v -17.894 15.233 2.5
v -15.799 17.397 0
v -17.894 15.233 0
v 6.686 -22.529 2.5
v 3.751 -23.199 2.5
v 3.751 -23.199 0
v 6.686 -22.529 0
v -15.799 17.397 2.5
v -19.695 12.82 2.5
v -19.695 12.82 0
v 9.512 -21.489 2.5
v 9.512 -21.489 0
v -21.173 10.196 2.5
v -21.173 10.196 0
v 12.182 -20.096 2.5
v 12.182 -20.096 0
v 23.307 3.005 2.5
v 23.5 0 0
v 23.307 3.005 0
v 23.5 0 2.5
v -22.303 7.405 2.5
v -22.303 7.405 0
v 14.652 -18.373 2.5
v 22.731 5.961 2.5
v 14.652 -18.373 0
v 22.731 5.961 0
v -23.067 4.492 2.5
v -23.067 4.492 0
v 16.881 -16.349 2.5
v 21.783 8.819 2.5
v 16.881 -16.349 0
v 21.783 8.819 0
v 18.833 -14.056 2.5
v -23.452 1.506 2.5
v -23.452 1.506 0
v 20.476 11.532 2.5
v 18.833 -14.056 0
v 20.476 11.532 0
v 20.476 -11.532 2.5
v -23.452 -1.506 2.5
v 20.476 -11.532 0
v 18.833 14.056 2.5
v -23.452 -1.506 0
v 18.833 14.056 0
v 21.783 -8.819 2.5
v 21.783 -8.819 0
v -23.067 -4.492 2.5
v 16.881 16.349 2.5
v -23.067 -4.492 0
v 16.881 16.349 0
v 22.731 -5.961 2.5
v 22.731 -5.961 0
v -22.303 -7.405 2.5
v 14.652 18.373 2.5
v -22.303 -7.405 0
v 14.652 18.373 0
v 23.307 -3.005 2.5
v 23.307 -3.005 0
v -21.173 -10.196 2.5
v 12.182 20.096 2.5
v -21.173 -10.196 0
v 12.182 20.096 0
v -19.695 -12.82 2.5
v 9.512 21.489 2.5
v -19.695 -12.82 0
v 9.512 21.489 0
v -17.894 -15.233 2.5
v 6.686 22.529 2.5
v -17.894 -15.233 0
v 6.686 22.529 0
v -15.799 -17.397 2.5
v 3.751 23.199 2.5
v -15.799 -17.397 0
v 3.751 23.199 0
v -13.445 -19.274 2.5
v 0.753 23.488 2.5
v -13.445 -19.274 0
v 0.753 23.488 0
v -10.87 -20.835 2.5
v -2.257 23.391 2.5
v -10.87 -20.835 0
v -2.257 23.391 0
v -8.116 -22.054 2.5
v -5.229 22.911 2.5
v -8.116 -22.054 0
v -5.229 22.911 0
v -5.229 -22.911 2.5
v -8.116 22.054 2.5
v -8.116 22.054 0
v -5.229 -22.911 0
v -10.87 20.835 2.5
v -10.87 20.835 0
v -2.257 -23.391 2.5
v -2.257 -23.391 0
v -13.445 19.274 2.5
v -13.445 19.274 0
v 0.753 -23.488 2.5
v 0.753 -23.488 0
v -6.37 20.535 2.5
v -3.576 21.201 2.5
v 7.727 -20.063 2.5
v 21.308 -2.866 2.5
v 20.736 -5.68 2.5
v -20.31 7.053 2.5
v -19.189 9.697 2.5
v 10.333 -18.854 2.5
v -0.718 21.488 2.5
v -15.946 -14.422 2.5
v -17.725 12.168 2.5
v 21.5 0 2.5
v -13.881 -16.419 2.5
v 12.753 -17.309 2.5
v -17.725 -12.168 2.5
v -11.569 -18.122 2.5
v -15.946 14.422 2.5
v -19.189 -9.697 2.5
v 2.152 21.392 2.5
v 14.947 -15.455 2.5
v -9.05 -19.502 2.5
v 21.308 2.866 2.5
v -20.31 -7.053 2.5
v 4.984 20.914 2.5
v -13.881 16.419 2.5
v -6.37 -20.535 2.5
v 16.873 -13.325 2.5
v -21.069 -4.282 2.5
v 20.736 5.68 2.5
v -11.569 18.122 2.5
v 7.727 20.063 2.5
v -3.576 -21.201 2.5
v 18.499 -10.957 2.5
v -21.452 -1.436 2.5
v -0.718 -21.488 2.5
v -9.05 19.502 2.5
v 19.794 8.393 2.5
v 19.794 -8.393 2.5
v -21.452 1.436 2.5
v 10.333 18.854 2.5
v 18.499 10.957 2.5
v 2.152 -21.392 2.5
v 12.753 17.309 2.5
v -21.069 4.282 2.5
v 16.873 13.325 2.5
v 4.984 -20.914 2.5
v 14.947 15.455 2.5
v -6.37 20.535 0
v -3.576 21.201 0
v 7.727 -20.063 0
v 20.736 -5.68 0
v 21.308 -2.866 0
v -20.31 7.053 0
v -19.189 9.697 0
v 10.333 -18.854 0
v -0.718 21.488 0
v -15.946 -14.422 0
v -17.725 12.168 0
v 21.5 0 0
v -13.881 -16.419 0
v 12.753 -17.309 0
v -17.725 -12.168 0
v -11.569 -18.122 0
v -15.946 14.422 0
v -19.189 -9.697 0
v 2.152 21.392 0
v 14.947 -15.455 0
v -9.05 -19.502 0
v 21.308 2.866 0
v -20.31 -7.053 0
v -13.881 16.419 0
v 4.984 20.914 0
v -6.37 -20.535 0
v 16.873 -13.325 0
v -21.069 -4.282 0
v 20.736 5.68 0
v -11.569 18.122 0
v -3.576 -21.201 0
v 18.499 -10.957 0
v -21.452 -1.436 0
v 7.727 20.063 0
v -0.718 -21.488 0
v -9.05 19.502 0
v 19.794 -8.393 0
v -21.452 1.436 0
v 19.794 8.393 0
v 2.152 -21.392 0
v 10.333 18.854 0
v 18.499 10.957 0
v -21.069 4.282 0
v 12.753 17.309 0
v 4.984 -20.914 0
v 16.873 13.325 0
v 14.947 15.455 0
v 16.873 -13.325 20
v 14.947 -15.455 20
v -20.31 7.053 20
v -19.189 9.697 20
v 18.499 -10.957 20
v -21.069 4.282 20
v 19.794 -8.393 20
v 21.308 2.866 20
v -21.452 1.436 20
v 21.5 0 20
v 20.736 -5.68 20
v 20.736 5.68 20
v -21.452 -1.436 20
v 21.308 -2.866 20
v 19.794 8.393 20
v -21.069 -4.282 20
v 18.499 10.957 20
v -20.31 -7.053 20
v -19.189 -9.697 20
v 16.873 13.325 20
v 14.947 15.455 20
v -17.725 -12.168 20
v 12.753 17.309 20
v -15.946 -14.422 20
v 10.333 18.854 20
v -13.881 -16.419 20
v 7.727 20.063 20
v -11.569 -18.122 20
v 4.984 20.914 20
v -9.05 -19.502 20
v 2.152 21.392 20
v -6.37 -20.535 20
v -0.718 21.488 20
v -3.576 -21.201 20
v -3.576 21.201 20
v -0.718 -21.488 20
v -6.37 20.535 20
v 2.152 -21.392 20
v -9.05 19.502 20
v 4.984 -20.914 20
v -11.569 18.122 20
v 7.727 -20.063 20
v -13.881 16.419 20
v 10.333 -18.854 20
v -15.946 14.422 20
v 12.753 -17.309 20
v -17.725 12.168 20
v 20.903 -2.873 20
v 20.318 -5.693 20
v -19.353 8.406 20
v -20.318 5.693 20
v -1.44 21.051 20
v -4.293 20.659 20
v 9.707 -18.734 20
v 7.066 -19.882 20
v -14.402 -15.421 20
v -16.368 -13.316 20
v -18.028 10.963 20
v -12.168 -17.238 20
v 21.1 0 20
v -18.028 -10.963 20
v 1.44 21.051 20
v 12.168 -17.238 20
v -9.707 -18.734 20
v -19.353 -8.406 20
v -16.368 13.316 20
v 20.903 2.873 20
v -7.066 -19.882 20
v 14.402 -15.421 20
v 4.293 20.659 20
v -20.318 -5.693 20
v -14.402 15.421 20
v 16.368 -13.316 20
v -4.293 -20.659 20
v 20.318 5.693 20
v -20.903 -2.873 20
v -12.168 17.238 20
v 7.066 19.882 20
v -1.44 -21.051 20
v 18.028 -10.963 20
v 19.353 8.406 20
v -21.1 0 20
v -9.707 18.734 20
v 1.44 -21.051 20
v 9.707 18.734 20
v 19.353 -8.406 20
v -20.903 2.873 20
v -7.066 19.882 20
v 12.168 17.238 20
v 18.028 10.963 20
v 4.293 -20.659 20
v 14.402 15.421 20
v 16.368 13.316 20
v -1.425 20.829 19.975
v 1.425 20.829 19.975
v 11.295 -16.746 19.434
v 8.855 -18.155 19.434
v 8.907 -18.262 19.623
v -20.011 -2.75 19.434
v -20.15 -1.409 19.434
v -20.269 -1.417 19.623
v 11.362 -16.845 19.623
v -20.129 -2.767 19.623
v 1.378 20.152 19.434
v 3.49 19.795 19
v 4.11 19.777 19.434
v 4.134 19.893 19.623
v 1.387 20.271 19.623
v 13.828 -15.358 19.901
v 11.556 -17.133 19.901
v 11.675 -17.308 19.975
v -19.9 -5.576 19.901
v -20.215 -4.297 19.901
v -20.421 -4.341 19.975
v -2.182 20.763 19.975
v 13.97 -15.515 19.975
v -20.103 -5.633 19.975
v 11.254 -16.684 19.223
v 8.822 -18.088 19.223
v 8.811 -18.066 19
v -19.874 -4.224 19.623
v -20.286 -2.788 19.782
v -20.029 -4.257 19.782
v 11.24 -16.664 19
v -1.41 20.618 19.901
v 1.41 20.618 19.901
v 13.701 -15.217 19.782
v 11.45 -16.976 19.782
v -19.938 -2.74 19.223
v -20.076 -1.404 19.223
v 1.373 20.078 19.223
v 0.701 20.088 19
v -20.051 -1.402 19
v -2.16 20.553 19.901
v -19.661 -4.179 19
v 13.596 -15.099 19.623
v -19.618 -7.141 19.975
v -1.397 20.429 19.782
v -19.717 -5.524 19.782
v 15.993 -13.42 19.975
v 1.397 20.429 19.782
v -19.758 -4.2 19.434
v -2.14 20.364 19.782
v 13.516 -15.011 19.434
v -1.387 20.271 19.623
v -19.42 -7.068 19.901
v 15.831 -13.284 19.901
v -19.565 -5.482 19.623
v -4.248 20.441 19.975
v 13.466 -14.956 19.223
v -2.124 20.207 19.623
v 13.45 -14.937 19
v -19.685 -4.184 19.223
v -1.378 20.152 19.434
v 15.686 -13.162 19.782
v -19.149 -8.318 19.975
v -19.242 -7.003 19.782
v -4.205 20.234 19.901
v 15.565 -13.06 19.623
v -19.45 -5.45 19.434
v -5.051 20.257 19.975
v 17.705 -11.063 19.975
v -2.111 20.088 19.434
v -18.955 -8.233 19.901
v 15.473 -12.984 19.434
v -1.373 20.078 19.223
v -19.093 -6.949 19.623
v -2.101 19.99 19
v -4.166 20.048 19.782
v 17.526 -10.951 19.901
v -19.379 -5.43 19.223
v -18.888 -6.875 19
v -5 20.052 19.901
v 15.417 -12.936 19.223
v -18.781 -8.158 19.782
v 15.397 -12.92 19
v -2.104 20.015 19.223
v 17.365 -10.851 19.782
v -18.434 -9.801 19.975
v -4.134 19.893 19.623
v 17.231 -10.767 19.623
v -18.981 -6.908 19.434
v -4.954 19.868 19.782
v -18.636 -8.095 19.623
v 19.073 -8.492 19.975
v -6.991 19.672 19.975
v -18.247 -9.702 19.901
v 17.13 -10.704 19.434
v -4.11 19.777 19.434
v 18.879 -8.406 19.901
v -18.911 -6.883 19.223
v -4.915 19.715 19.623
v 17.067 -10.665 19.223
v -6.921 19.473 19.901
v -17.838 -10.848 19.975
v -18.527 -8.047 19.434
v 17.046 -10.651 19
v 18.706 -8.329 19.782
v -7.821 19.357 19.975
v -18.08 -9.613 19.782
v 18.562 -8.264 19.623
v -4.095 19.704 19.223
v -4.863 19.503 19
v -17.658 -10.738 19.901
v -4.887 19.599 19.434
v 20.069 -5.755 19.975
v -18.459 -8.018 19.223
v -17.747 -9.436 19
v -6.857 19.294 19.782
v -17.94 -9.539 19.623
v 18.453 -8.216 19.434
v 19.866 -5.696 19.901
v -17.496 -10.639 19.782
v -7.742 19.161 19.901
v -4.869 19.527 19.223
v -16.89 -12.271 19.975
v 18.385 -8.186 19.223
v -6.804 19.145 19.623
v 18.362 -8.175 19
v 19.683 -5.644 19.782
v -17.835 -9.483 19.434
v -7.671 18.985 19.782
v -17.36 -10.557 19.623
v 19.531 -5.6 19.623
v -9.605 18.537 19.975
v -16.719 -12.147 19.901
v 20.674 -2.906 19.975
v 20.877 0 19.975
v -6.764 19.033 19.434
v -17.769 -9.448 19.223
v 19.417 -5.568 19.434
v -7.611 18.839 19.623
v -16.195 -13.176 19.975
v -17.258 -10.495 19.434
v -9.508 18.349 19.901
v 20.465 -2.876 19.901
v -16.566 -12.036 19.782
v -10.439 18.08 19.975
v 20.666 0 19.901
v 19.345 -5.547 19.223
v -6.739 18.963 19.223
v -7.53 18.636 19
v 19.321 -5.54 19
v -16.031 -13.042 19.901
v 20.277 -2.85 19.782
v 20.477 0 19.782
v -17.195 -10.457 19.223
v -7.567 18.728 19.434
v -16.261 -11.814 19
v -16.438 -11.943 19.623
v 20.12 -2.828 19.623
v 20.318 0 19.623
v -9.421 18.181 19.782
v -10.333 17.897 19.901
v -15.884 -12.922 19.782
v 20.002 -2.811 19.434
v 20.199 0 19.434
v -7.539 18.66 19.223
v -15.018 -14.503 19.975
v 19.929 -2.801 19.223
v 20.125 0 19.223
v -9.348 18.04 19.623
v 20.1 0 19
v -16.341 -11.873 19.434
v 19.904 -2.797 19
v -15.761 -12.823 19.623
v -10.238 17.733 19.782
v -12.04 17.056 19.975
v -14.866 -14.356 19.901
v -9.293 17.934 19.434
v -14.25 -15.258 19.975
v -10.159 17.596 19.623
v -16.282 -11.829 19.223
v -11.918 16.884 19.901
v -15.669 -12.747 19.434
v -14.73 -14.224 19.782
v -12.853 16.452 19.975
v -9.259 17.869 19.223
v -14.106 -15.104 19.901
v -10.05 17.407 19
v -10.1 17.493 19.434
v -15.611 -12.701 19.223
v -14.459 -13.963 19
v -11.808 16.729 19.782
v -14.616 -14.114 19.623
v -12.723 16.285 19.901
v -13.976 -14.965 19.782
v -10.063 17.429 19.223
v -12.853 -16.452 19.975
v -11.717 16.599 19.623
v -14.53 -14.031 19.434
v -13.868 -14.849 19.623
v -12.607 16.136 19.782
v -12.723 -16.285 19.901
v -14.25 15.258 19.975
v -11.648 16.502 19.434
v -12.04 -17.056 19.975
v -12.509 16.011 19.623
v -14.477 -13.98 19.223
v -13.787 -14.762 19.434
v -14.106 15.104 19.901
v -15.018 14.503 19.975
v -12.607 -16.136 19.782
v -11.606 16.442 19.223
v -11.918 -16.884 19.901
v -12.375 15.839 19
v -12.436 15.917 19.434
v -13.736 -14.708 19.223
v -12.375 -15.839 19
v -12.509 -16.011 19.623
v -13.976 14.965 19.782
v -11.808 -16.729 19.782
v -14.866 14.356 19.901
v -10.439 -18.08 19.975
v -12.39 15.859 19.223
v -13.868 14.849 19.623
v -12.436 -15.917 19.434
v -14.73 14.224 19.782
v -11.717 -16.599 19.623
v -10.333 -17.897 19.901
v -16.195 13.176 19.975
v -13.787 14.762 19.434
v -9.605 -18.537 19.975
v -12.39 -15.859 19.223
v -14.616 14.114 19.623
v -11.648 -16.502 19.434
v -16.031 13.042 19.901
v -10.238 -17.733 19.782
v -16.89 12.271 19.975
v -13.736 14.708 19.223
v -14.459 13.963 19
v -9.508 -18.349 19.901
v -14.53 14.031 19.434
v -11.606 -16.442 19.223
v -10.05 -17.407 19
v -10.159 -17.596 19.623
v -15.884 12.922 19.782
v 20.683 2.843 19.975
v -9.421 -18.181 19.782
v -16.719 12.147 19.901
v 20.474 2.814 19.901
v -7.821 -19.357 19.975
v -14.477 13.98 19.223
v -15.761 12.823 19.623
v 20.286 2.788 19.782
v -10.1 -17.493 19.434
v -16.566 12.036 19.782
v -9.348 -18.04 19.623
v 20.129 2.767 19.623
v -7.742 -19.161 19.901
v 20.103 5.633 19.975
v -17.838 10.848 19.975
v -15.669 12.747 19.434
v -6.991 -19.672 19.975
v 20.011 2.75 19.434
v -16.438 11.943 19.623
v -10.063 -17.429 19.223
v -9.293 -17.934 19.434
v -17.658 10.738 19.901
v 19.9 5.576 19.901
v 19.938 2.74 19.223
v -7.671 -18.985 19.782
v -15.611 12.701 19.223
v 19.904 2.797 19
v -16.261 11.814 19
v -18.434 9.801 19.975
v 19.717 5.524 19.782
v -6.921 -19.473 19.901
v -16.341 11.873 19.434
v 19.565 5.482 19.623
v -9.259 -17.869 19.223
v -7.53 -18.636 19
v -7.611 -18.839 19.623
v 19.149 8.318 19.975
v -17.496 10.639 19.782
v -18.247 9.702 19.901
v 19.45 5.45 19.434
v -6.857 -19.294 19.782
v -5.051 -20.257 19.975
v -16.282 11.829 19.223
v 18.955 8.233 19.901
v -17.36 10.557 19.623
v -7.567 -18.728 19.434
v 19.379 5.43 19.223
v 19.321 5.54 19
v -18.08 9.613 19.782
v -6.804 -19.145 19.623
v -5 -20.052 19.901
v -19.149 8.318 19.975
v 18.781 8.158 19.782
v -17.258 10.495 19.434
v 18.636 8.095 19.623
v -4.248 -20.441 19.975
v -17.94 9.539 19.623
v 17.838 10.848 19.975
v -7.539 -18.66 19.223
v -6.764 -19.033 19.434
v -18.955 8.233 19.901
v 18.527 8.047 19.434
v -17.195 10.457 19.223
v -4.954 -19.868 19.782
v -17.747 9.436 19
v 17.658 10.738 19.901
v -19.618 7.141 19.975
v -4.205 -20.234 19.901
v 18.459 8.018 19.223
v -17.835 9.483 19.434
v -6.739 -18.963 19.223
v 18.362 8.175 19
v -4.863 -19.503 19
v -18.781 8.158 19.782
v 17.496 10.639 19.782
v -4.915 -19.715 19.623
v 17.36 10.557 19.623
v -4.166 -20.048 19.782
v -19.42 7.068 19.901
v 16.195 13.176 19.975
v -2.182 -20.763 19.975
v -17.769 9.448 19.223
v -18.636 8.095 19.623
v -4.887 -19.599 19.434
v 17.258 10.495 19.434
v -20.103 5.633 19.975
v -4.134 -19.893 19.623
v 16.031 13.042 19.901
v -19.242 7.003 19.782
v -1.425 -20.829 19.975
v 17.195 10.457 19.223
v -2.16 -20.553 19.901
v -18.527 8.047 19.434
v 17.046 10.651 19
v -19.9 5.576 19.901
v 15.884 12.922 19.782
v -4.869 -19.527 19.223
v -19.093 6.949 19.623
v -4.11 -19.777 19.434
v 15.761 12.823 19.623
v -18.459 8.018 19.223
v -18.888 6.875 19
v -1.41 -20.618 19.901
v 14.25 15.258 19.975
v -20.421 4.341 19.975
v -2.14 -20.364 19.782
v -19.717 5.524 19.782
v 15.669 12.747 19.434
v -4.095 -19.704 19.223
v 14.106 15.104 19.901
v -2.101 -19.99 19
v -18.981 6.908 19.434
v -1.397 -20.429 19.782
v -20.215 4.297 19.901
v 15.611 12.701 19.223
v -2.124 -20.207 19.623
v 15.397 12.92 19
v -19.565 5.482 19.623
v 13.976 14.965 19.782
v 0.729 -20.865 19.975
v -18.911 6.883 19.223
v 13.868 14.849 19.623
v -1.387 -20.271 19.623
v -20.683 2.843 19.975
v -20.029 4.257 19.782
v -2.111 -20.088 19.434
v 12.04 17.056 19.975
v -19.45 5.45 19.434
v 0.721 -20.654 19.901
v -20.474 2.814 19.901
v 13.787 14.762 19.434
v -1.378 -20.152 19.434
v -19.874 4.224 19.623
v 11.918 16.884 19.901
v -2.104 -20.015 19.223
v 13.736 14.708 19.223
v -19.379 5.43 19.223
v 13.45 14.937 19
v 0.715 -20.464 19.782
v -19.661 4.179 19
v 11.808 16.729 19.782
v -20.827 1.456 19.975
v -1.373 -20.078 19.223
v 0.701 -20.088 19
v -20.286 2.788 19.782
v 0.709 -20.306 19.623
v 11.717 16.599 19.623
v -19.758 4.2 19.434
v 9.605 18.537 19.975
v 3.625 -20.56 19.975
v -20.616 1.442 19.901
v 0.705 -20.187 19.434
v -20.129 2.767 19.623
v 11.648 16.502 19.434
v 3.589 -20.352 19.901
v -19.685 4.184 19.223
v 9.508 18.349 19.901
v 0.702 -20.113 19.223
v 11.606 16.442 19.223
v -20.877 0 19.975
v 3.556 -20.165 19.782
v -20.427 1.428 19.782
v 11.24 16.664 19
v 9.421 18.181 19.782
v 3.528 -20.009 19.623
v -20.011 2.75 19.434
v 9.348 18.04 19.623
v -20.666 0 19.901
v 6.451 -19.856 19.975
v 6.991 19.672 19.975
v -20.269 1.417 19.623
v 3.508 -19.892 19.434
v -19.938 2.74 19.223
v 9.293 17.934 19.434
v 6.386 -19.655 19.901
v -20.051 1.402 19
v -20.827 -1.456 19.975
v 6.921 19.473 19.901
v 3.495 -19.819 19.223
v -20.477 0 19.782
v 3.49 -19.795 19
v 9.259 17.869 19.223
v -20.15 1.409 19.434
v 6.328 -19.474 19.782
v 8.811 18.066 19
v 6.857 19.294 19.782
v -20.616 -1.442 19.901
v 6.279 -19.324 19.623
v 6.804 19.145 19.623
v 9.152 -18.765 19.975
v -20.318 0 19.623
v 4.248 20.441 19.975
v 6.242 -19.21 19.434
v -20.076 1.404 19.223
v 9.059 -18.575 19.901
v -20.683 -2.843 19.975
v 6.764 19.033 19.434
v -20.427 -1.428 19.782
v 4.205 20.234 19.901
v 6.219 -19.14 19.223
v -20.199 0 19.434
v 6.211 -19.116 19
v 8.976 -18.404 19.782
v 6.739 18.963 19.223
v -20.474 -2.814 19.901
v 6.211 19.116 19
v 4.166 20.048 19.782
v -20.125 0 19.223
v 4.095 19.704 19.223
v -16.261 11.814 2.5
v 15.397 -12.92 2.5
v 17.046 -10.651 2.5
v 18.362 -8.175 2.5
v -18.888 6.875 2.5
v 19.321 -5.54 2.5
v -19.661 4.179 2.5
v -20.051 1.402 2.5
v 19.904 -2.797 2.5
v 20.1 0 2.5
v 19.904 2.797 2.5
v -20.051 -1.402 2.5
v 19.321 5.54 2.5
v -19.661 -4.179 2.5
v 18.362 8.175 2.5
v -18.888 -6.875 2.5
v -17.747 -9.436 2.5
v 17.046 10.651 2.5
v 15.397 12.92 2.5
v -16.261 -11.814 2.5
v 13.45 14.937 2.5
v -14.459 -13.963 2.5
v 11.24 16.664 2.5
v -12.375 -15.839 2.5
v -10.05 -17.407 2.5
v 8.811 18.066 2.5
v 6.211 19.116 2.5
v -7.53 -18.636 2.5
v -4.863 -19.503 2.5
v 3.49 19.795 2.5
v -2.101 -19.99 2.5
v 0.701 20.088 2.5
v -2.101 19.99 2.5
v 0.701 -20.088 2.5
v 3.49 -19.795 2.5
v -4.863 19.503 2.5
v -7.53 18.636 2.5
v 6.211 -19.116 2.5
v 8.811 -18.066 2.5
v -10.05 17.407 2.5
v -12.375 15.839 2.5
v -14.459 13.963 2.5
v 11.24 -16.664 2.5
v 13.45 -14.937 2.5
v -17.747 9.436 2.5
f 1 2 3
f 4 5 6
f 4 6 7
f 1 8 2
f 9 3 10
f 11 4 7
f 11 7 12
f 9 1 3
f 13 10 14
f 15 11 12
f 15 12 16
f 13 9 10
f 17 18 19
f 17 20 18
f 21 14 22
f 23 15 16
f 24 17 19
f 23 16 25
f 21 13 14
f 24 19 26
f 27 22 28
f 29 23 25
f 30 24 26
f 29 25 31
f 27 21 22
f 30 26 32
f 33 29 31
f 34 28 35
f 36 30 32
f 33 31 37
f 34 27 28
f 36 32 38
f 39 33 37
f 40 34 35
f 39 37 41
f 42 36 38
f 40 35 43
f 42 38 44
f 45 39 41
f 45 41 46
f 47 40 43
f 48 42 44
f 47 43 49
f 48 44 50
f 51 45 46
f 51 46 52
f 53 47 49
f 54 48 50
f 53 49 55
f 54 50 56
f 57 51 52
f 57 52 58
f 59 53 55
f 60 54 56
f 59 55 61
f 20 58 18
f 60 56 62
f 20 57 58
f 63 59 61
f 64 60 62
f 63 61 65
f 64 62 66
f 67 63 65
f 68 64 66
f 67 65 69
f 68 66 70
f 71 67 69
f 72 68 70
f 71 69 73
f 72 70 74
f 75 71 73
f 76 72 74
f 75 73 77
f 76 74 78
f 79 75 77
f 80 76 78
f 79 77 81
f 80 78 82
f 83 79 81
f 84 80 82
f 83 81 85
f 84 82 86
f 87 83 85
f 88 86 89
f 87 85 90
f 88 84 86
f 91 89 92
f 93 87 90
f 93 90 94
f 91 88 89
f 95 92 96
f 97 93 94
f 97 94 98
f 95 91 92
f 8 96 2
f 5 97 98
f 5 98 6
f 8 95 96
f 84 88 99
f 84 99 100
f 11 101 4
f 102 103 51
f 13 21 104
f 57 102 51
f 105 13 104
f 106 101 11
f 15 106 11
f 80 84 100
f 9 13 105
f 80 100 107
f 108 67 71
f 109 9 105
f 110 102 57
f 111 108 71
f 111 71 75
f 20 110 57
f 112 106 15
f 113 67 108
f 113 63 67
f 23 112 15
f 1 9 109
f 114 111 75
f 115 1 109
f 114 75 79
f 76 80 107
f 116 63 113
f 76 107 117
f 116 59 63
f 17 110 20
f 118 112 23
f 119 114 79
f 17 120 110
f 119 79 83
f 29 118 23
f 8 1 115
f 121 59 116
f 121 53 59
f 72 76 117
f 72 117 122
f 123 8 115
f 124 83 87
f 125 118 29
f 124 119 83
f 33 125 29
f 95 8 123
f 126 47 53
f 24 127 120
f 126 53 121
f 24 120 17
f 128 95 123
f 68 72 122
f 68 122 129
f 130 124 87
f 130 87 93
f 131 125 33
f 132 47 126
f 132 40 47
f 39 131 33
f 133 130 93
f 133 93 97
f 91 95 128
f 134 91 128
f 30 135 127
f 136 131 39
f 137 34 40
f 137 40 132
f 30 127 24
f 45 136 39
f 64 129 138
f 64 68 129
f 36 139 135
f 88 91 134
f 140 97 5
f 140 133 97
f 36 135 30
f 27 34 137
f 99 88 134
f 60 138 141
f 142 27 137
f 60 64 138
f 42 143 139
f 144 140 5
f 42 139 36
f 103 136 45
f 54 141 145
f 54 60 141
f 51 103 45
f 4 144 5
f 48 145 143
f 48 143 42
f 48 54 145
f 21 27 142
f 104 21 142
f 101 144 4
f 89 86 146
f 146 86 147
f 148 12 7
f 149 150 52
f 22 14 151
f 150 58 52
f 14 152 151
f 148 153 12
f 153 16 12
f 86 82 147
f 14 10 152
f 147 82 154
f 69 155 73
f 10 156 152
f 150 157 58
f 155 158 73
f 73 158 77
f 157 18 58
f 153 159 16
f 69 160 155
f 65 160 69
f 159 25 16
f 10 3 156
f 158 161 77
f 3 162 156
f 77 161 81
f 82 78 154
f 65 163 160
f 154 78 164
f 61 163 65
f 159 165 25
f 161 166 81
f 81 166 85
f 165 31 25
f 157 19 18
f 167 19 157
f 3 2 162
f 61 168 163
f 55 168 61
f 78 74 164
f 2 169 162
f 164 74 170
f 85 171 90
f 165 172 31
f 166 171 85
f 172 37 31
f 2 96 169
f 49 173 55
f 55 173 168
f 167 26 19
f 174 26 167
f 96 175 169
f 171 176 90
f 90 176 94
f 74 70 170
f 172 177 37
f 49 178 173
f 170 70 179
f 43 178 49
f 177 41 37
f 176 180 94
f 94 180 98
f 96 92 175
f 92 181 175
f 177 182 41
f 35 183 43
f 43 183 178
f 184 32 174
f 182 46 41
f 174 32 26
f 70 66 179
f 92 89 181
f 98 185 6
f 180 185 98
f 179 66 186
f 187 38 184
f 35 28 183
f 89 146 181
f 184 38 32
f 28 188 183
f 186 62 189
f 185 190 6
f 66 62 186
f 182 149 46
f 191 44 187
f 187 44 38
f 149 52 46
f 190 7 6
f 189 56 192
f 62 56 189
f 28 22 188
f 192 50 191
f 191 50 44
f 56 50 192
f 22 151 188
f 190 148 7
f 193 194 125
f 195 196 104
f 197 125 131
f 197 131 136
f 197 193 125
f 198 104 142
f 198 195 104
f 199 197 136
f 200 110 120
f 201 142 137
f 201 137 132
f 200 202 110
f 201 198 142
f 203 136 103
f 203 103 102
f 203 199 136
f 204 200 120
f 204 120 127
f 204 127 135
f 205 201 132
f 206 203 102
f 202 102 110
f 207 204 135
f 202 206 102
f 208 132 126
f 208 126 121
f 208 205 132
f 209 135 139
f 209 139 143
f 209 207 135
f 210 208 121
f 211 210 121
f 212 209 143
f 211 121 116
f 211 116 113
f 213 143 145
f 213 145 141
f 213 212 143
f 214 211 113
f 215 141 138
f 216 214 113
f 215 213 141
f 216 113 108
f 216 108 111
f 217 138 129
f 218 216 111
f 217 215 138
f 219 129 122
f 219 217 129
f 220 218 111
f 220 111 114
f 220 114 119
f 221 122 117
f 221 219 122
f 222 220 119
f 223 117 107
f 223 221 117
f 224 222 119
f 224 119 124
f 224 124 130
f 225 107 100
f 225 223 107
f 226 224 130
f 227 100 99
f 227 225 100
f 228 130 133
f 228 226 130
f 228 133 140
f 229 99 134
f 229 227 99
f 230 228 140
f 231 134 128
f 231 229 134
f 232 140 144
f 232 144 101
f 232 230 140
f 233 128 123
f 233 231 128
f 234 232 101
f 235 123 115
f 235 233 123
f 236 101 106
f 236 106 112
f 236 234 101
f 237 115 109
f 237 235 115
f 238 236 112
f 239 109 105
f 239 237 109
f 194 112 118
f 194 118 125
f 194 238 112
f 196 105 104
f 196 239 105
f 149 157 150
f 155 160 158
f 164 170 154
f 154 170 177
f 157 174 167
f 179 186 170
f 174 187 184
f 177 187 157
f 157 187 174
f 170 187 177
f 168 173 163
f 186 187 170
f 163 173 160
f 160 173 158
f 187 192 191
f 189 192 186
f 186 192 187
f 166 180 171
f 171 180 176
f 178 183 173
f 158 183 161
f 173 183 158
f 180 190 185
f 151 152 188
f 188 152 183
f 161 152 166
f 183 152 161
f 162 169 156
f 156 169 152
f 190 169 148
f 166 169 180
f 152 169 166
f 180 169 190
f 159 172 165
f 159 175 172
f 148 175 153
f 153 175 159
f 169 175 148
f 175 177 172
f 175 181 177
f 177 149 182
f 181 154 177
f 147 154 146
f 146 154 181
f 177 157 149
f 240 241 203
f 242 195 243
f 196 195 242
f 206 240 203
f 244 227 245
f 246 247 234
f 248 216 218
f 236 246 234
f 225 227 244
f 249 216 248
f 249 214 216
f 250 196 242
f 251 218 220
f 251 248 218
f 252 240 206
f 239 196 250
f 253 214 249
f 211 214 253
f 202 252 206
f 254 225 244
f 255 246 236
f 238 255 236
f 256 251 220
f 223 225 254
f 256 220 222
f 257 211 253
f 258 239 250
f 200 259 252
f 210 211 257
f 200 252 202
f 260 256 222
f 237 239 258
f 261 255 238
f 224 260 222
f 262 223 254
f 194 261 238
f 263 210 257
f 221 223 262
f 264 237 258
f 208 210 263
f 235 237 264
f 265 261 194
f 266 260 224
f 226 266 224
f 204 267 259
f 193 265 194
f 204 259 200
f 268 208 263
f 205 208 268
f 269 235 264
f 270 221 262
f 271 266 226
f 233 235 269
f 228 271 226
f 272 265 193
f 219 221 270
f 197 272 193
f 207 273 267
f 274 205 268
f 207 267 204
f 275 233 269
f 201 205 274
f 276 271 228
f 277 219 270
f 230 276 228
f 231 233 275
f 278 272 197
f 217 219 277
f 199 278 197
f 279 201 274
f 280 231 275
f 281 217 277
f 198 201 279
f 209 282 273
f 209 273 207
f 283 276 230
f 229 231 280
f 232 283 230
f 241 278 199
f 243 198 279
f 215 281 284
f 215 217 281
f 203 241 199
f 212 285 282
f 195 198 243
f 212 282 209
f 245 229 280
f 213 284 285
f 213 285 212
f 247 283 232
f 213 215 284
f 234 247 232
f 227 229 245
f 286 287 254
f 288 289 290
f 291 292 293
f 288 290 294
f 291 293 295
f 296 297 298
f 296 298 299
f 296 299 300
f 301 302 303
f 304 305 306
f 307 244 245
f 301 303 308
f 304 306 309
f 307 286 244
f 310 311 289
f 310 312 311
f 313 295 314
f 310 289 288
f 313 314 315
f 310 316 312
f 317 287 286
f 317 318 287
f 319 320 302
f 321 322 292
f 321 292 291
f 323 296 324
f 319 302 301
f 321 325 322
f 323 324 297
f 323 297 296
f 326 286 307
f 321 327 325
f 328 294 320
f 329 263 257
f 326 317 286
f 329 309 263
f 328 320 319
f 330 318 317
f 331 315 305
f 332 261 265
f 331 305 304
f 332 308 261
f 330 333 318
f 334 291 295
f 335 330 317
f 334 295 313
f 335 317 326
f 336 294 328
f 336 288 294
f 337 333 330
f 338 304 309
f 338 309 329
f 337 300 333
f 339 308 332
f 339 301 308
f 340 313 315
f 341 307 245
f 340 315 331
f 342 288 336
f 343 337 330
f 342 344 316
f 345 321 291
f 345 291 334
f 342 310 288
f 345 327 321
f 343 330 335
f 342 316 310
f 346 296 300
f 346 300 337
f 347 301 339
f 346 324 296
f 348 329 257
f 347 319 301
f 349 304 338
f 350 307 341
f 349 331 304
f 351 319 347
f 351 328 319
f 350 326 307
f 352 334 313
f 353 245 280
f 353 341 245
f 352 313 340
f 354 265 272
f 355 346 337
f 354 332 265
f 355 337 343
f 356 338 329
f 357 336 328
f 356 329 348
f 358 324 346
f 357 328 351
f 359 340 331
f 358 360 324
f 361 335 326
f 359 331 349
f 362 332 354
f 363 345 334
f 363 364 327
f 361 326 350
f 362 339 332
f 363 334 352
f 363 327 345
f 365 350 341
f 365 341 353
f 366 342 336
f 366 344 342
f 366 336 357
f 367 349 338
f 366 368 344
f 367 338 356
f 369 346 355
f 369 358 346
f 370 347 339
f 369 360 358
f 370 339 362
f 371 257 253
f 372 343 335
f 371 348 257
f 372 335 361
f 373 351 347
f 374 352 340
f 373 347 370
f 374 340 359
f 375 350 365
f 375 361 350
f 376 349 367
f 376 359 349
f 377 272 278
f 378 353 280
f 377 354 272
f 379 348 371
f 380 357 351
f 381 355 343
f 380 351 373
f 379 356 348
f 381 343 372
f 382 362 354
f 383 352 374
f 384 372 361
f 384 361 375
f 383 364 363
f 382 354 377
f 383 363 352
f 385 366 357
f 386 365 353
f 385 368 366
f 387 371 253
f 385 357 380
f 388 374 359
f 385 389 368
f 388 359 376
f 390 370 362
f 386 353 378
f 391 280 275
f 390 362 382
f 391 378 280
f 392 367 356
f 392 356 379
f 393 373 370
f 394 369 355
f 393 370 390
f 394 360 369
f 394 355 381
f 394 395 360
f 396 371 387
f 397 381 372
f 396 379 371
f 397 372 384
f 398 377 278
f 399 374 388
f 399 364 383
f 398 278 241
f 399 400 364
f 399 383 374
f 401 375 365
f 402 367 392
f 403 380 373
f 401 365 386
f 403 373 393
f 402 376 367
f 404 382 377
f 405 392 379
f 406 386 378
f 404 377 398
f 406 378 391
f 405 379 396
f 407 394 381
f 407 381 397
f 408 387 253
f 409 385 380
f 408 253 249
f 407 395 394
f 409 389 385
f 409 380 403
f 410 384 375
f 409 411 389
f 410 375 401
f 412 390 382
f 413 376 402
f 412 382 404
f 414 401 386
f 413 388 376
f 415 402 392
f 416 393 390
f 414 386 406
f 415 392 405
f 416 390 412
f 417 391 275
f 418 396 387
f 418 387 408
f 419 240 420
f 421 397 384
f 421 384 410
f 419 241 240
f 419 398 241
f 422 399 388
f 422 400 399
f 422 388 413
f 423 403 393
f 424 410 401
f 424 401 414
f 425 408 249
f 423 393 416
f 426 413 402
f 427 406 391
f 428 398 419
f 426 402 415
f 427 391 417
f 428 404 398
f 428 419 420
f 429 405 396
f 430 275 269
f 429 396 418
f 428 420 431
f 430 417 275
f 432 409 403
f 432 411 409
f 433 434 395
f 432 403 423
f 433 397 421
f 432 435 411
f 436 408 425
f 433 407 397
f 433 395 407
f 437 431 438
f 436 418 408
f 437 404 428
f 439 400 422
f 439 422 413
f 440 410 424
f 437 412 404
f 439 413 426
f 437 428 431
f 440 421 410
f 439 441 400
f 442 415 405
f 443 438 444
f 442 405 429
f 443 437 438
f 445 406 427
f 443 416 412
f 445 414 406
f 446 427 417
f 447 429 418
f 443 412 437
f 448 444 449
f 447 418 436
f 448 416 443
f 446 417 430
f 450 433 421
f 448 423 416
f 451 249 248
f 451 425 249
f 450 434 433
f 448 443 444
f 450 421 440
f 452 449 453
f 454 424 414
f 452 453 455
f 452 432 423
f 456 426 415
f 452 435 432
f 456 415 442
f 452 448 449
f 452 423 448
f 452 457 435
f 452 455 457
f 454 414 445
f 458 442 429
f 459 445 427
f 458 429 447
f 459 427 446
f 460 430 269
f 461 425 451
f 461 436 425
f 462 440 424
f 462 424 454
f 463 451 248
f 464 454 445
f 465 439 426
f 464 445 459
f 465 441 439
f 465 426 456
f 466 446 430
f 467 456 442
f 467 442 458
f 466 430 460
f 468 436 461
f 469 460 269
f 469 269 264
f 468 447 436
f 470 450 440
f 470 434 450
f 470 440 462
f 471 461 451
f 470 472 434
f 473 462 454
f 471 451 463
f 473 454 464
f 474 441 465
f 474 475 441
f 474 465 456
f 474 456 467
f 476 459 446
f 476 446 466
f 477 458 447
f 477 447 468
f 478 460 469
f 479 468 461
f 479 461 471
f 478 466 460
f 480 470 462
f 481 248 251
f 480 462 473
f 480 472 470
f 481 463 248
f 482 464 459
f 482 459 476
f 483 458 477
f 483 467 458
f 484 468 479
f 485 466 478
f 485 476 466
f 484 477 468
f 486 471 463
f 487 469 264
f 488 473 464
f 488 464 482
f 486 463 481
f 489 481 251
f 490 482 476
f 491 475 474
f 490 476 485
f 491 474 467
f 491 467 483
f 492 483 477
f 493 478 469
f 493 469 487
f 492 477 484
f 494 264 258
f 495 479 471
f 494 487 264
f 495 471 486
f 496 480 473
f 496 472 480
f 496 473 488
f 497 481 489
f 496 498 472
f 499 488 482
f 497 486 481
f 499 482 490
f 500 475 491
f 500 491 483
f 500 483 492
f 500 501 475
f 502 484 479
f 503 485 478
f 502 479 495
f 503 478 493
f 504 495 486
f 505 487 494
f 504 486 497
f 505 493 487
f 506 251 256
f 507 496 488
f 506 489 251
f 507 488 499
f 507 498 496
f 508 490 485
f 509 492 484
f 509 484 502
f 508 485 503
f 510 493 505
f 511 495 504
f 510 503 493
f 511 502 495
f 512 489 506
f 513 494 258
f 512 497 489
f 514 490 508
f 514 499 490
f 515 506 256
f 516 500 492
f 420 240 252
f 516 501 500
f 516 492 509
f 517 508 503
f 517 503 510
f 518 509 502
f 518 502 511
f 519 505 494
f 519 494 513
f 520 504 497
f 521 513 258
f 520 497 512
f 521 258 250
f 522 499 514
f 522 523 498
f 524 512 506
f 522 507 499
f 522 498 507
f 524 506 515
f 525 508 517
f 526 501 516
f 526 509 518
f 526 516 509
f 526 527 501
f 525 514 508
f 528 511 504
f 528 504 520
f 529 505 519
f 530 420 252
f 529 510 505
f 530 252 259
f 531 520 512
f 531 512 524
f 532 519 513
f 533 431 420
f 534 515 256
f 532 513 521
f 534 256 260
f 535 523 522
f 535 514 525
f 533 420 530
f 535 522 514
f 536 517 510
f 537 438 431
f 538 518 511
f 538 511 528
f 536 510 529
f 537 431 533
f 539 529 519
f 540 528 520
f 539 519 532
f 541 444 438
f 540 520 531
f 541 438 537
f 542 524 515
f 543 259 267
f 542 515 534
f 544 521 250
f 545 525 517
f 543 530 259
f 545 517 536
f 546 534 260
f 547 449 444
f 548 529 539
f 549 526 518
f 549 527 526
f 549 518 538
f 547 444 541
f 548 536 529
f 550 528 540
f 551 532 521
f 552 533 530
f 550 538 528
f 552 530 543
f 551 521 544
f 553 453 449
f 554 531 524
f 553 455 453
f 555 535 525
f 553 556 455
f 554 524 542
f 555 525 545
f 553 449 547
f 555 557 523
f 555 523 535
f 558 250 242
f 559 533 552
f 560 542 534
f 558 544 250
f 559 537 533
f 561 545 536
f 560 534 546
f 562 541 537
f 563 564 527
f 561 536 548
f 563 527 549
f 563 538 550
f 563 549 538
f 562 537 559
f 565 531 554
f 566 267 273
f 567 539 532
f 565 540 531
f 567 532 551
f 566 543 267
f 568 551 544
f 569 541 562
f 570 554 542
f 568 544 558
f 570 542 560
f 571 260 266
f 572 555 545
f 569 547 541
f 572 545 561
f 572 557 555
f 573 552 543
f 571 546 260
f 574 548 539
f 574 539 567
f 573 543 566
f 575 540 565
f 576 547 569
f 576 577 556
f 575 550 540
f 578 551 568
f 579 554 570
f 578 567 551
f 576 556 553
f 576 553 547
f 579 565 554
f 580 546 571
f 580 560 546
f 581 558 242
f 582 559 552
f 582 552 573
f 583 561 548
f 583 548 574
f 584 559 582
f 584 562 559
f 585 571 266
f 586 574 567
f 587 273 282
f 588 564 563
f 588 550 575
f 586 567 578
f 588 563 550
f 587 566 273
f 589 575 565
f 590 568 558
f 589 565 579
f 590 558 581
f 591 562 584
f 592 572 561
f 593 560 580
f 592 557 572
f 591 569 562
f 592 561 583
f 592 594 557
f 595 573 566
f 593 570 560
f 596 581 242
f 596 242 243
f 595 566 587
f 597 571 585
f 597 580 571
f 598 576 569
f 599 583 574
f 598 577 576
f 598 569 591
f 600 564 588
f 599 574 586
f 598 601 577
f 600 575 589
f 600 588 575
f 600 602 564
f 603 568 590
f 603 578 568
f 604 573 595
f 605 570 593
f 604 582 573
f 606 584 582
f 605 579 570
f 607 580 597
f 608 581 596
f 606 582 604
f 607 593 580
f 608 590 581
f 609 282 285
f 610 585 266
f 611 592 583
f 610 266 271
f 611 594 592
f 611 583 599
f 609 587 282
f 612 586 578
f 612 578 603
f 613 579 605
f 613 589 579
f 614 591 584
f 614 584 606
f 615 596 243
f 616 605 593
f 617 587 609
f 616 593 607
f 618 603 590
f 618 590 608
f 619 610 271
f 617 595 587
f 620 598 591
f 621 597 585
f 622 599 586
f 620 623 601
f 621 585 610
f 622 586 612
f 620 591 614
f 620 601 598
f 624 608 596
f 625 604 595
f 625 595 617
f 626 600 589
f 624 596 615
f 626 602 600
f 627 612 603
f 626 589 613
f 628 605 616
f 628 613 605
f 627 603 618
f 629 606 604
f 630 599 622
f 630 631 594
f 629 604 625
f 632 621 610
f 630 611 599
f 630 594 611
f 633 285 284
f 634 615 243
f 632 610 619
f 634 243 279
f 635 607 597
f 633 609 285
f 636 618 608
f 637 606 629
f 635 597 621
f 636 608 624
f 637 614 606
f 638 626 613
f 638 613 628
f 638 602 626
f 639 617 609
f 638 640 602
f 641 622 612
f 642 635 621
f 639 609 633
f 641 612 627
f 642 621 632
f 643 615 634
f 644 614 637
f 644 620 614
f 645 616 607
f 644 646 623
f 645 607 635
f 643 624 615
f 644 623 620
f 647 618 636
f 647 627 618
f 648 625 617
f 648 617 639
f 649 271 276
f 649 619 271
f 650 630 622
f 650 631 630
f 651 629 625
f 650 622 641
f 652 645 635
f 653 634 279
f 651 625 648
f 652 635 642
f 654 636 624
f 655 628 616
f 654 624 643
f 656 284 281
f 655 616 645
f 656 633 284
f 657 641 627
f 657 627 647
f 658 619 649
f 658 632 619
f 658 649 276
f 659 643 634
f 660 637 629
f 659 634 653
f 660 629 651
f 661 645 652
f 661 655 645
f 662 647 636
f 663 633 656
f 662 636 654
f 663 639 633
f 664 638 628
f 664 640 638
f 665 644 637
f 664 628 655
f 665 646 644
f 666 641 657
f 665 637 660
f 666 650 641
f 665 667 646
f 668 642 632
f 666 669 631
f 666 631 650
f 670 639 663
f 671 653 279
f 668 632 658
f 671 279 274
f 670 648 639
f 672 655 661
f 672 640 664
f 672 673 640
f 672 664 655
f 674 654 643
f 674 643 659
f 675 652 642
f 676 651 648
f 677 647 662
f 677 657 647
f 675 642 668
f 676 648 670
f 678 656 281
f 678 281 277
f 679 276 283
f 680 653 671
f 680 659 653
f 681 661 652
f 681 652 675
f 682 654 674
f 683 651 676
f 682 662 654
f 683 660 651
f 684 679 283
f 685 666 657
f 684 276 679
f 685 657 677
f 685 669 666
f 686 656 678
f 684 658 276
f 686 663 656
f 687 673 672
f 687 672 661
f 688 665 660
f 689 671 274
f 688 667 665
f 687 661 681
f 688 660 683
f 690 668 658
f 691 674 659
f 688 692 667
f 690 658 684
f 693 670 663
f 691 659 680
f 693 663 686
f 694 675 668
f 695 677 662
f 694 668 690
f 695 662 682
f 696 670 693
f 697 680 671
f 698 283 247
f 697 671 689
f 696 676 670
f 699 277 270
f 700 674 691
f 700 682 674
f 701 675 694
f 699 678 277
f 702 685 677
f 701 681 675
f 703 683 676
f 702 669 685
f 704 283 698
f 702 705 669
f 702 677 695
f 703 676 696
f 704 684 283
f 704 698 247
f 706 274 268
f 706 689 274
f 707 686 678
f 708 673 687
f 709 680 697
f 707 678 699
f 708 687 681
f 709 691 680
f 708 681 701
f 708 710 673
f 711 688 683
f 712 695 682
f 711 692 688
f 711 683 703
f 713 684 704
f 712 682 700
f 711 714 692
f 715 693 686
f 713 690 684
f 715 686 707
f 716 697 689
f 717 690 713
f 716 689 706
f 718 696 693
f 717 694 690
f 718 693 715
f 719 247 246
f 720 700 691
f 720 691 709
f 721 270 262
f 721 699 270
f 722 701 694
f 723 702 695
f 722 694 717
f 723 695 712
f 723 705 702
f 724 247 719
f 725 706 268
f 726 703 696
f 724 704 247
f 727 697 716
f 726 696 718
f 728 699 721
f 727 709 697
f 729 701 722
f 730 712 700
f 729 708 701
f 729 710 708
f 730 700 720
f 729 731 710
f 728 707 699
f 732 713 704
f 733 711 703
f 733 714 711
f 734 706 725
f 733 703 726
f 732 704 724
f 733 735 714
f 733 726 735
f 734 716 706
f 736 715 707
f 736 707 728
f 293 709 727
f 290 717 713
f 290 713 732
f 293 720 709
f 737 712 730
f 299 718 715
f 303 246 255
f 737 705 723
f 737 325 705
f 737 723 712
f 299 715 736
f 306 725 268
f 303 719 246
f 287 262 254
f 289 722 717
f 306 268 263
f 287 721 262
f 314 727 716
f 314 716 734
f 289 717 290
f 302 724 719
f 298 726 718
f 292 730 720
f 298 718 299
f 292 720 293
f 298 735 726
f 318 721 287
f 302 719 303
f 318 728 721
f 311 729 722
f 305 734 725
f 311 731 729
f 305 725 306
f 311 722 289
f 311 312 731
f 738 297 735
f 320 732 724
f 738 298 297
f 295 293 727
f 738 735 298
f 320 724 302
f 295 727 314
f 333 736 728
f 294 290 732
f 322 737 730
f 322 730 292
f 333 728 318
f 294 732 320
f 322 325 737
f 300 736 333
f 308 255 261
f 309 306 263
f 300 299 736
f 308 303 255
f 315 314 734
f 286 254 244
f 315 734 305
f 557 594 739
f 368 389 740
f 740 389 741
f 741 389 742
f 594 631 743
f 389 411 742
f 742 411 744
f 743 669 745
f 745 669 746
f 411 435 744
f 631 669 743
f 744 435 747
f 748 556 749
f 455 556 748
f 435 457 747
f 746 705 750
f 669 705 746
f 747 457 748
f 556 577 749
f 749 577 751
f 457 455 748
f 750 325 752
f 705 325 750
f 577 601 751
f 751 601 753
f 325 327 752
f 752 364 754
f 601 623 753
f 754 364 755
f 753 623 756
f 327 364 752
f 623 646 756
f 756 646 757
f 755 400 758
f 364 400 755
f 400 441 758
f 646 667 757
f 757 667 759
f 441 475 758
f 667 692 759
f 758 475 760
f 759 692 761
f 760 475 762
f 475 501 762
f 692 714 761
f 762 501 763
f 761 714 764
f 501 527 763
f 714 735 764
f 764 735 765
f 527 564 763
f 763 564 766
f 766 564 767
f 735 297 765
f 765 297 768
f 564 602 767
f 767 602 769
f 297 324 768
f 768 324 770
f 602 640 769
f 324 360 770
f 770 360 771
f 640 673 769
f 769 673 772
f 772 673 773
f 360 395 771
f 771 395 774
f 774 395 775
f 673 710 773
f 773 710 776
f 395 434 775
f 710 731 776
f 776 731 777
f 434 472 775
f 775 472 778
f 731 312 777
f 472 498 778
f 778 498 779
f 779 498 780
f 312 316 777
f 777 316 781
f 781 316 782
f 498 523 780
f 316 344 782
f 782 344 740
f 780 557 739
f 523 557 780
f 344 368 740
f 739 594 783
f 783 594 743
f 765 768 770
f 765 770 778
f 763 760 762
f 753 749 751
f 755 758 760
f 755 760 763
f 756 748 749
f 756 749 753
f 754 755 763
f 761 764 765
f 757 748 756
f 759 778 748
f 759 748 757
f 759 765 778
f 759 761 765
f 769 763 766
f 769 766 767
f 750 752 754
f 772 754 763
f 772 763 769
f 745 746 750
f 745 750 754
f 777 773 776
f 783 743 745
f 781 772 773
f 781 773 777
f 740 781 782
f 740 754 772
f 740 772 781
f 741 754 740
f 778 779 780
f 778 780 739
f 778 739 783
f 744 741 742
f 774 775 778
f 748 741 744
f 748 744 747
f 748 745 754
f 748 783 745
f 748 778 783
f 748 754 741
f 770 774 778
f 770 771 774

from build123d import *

# Parameters (mm, degrees)
CYLINDER002_R     = 20.1
CYLINDER002_DEPTH = 30
CYLINDER001_R     = 21.5
CYLINDER001_DEPTH = 20
FILLET_R          = 1
CYLINDER_R        = 23.5
CYLINDER_DEPTH    = 2.5


with BuildPart() as cylinder002:
    # Cylinder002 → Cylinder002 (new body)
    with BuildSketch(Plane.XY.offset(2.5)):
        Circle(CYLINDER002_R)
    extrude(amount=CYLINDER002_DEPTH)


with BuildPart() as fillet_body:
    # Cylinder001 → Cylinder001 (new body)
    with BuildSketch(Plane.XY):
        Circle(CYLINDER001_R)
    extrude(amount=CYLINDER001_DEPTH)

    # Cut: cut Cylinder002
    add(cylinder002.part, mode=Mode.SUBTRACT)

    # Fillet
    fillet_edges = [fillet_body.edges().sort_by_distance(p)[0] for p in [
        (-20.1, 0, 20),
    ]]
    fillet(fillet_edges, radius=FILLET_R)


with BuildPart() as fusion:
    # Cylinder → Cylinder (new body)
    with BuildSketch(Plane.XY):
        Circle(CYLINDER_R)
    extrude(amount=CYLINDER_DEPTH)

    # Fusion: union Fillet body
    add(fillet_body.part)


solid = fusion.part
